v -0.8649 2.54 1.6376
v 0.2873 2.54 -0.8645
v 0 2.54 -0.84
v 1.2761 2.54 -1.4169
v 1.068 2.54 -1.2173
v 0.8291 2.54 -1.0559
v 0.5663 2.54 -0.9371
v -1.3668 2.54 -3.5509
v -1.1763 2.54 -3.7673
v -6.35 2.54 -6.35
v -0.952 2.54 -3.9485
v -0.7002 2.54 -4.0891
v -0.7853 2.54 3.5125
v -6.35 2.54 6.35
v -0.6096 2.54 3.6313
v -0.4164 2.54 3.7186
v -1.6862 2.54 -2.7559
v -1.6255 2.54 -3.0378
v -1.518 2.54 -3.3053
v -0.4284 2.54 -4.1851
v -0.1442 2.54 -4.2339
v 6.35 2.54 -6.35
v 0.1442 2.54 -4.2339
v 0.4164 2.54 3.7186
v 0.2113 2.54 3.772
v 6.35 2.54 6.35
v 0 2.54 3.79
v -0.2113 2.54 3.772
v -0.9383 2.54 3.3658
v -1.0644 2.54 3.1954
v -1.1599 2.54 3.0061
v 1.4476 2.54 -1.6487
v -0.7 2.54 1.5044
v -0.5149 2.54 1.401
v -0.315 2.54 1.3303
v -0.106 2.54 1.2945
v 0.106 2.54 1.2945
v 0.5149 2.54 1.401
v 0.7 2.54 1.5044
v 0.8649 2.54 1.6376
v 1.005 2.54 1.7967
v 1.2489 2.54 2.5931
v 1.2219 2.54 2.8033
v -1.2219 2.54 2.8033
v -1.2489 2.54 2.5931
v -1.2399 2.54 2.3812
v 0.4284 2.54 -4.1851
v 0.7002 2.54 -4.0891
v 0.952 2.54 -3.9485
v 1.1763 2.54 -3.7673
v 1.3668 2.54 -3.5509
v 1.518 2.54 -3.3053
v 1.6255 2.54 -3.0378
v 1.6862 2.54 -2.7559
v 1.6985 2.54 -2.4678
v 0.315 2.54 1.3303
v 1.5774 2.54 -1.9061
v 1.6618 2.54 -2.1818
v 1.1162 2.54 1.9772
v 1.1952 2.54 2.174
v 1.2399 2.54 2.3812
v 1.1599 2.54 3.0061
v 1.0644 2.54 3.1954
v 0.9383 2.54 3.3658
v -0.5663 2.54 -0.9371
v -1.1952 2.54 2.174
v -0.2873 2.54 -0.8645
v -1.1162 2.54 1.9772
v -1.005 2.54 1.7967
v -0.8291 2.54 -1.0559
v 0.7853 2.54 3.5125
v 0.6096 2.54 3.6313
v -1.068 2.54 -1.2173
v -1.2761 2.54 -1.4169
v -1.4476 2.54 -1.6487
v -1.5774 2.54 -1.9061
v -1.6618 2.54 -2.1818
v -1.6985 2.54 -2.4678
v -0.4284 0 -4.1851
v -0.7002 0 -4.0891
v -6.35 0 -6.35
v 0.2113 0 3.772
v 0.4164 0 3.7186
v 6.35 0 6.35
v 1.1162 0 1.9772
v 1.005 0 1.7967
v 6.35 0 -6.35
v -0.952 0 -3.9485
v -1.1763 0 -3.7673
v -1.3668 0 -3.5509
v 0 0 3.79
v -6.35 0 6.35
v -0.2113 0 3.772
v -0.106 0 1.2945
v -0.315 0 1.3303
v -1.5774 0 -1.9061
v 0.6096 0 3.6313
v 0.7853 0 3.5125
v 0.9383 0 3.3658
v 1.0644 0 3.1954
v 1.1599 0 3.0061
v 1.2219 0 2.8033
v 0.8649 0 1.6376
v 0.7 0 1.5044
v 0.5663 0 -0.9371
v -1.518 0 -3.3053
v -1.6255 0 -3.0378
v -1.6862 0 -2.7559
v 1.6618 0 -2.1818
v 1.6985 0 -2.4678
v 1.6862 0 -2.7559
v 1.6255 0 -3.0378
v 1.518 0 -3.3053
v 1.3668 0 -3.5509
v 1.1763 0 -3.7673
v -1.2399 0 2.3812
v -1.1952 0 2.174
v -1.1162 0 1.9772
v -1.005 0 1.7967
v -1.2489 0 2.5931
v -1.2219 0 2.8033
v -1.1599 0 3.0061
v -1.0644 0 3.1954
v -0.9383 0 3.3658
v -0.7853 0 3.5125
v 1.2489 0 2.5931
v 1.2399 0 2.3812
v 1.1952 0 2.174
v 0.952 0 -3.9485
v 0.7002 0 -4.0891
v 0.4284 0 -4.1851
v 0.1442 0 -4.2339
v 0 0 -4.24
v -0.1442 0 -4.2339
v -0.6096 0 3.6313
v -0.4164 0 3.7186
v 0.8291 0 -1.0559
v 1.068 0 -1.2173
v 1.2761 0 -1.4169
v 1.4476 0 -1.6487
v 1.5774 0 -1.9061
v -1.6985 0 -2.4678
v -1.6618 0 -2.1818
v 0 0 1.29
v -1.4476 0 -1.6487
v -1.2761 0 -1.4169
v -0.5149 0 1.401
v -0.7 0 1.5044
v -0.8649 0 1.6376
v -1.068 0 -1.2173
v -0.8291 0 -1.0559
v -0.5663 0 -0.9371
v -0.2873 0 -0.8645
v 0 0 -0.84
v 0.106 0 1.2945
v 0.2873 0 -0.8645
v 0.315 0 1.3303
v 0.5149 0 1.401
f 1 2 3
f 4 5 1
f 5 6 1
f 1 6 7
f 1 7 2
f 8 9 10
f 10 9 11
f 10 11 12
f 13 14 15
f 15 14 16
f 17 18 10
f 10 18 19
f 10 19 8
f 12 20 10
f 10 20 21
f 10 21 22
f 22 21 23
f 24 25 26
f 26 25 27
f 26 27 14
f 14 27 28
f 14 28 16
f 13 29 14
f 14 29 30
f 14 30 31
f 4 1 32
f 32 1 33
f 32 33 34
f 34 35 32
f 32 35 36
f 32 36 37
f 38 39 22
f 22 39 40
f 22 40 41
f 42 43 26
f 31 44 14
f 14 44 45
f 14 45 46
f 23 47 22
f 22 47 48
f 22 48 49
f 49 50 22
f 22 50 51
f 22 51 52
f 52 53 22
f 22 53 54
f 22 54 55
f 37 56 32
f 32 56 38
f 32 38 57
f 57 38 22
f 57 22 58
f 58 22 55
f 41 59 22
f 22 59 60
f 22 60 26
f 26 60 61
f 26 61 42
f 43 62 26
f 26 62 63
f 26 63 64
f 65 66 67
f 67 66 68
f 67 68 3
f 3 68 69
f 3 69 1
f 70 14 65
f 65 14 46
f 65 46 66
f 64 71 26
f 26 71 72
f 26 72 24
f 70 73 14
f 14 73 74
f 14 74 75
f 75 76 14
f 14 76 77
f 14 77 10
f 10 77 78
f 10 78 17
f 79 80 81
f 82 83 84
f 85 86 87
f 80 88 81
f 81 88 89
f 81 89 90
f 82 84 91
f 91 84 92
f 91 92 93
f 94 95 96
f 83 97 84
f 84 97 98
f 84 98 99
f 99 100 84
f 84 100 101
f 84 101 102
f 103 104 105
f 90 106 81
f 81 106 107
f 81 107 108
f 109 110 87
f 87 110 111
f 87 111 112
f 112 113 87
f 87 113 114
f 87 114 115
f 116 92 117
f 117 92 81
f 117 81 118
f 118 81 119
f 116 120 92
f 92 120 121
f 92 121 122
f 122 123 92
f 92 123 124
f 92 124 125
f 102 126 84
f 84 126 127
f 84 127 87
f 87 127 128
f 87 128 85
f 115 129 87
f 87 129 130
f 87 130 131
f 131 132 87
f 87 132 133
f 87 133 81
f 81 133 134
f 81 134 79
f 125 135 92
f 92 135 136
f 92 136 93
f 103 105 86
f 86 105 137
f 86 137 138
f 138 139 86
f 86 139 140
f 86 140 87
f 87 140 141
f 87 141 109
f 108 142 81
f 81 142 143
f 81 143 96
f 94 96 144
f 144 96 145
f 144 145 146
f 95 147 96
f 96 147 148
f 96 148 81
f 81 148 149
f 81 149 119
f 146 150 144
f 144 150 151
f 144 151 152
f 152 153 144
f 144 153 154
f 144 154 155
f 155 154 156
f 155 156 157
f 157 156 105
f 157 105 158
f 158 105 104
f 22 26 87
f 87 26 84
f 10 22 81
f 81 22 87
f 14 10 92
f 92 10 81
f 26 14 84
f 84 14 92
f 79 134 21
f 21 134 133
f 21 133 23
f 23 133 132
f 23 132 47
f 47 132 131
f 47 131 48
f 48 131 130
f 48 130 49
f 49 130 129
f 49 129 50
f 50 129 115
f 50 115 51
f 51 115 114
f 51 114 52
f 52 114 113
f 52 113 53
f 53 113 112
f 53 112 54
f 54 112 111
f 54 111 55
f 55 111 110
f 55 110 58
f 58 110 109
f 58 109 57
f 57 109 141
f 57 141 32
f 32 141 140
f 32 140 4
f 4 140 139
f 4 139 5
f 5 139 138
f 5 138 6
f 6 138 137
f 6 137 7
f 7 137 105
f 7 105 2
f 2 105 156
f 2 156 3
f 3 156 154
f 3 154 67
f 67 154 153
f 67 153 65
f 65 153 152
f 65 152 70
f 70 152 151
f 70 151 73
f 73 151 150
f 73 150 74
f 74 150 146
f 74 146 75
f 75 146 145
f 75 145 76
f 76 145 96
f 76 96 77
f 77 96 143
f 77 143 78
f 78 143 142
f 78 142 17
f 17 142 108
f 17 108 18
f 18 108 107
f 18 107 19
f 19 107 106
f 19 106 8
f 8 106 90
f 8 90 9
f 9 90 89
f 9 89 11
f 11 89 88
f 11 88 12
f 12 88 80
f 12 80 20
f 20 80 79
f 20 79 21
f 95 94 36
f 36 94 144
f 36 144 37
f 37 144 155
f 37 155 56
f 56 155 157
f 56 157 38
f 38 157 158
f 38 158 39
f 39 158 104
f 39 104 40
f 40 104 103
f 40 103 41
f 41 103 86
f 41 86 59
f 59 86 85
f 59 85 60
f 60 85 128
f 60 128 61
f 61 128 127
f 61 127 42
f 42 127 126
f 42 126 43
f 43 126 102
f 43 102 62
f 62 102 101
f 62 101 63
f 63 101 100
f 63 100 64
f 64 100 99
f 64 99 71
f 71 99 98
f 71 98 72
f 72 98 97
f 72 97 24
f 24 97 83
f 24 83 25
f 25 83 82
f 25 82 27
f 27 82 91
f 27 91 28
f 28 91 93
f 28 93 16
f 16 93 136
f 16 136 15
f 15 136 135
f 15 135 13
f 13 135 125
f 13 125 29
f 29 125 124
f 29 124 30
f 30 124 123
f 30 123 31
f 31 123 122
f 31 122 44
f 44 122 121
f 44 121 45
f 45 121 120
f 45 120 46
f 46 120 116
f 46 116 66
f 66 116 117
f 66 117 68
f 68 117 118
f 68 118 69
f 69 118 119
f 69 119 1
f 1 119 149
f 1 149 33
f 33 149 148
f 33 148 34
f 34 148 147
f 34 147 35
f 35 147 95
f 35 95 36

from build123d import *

# Parameters (mm, degrees)
SKETCH1_W                   = 12.7
SKETCH1_H                   = 12.7
BOSS_EXTRUDE1_DEPTH         = 2.54
M3_CLEARANCE_HOLE1_D        = 3.4
TAP_DRILL_FOR_M3X0_5_TAP1_D = 2.5


with BuildPart() as part:
    # Sketch1 → Boss-Extrude1 (new body)
    with BuildSketch(Plane(origin=(0, 0, 0), x_dir=(1, 0, 0), z_dir=(0, 1, 0))):
        Rectangle(SKETCH1_W, SKETCH1_H)
    extrude(amount=BOSS_EXTRUDE1_DEPTH)

    # M3 Clearance Hole1 (through all)
    with Locations(Plane(origin=(0, 2.54, -2.54), x_dir=(0, 0, 1), z_dir=(0, 1, 0))):
        with Locations((0, 0)):
            Hole(M3_CLEARANCE_HOLE1_D / 2)

    # Tap Drill for M3x0.5 Tap1 (through all)
    with Locations(Plane(origin=(0, 2.54, 2.54), x_dir=(0, 0, 1), z_dir=(0, 1, 0))):
        with Locations((0, 0)):
            Hole(TAP_DRILL_FOR_M3X0_5_TAP1_D / 2)


solid = part.part
